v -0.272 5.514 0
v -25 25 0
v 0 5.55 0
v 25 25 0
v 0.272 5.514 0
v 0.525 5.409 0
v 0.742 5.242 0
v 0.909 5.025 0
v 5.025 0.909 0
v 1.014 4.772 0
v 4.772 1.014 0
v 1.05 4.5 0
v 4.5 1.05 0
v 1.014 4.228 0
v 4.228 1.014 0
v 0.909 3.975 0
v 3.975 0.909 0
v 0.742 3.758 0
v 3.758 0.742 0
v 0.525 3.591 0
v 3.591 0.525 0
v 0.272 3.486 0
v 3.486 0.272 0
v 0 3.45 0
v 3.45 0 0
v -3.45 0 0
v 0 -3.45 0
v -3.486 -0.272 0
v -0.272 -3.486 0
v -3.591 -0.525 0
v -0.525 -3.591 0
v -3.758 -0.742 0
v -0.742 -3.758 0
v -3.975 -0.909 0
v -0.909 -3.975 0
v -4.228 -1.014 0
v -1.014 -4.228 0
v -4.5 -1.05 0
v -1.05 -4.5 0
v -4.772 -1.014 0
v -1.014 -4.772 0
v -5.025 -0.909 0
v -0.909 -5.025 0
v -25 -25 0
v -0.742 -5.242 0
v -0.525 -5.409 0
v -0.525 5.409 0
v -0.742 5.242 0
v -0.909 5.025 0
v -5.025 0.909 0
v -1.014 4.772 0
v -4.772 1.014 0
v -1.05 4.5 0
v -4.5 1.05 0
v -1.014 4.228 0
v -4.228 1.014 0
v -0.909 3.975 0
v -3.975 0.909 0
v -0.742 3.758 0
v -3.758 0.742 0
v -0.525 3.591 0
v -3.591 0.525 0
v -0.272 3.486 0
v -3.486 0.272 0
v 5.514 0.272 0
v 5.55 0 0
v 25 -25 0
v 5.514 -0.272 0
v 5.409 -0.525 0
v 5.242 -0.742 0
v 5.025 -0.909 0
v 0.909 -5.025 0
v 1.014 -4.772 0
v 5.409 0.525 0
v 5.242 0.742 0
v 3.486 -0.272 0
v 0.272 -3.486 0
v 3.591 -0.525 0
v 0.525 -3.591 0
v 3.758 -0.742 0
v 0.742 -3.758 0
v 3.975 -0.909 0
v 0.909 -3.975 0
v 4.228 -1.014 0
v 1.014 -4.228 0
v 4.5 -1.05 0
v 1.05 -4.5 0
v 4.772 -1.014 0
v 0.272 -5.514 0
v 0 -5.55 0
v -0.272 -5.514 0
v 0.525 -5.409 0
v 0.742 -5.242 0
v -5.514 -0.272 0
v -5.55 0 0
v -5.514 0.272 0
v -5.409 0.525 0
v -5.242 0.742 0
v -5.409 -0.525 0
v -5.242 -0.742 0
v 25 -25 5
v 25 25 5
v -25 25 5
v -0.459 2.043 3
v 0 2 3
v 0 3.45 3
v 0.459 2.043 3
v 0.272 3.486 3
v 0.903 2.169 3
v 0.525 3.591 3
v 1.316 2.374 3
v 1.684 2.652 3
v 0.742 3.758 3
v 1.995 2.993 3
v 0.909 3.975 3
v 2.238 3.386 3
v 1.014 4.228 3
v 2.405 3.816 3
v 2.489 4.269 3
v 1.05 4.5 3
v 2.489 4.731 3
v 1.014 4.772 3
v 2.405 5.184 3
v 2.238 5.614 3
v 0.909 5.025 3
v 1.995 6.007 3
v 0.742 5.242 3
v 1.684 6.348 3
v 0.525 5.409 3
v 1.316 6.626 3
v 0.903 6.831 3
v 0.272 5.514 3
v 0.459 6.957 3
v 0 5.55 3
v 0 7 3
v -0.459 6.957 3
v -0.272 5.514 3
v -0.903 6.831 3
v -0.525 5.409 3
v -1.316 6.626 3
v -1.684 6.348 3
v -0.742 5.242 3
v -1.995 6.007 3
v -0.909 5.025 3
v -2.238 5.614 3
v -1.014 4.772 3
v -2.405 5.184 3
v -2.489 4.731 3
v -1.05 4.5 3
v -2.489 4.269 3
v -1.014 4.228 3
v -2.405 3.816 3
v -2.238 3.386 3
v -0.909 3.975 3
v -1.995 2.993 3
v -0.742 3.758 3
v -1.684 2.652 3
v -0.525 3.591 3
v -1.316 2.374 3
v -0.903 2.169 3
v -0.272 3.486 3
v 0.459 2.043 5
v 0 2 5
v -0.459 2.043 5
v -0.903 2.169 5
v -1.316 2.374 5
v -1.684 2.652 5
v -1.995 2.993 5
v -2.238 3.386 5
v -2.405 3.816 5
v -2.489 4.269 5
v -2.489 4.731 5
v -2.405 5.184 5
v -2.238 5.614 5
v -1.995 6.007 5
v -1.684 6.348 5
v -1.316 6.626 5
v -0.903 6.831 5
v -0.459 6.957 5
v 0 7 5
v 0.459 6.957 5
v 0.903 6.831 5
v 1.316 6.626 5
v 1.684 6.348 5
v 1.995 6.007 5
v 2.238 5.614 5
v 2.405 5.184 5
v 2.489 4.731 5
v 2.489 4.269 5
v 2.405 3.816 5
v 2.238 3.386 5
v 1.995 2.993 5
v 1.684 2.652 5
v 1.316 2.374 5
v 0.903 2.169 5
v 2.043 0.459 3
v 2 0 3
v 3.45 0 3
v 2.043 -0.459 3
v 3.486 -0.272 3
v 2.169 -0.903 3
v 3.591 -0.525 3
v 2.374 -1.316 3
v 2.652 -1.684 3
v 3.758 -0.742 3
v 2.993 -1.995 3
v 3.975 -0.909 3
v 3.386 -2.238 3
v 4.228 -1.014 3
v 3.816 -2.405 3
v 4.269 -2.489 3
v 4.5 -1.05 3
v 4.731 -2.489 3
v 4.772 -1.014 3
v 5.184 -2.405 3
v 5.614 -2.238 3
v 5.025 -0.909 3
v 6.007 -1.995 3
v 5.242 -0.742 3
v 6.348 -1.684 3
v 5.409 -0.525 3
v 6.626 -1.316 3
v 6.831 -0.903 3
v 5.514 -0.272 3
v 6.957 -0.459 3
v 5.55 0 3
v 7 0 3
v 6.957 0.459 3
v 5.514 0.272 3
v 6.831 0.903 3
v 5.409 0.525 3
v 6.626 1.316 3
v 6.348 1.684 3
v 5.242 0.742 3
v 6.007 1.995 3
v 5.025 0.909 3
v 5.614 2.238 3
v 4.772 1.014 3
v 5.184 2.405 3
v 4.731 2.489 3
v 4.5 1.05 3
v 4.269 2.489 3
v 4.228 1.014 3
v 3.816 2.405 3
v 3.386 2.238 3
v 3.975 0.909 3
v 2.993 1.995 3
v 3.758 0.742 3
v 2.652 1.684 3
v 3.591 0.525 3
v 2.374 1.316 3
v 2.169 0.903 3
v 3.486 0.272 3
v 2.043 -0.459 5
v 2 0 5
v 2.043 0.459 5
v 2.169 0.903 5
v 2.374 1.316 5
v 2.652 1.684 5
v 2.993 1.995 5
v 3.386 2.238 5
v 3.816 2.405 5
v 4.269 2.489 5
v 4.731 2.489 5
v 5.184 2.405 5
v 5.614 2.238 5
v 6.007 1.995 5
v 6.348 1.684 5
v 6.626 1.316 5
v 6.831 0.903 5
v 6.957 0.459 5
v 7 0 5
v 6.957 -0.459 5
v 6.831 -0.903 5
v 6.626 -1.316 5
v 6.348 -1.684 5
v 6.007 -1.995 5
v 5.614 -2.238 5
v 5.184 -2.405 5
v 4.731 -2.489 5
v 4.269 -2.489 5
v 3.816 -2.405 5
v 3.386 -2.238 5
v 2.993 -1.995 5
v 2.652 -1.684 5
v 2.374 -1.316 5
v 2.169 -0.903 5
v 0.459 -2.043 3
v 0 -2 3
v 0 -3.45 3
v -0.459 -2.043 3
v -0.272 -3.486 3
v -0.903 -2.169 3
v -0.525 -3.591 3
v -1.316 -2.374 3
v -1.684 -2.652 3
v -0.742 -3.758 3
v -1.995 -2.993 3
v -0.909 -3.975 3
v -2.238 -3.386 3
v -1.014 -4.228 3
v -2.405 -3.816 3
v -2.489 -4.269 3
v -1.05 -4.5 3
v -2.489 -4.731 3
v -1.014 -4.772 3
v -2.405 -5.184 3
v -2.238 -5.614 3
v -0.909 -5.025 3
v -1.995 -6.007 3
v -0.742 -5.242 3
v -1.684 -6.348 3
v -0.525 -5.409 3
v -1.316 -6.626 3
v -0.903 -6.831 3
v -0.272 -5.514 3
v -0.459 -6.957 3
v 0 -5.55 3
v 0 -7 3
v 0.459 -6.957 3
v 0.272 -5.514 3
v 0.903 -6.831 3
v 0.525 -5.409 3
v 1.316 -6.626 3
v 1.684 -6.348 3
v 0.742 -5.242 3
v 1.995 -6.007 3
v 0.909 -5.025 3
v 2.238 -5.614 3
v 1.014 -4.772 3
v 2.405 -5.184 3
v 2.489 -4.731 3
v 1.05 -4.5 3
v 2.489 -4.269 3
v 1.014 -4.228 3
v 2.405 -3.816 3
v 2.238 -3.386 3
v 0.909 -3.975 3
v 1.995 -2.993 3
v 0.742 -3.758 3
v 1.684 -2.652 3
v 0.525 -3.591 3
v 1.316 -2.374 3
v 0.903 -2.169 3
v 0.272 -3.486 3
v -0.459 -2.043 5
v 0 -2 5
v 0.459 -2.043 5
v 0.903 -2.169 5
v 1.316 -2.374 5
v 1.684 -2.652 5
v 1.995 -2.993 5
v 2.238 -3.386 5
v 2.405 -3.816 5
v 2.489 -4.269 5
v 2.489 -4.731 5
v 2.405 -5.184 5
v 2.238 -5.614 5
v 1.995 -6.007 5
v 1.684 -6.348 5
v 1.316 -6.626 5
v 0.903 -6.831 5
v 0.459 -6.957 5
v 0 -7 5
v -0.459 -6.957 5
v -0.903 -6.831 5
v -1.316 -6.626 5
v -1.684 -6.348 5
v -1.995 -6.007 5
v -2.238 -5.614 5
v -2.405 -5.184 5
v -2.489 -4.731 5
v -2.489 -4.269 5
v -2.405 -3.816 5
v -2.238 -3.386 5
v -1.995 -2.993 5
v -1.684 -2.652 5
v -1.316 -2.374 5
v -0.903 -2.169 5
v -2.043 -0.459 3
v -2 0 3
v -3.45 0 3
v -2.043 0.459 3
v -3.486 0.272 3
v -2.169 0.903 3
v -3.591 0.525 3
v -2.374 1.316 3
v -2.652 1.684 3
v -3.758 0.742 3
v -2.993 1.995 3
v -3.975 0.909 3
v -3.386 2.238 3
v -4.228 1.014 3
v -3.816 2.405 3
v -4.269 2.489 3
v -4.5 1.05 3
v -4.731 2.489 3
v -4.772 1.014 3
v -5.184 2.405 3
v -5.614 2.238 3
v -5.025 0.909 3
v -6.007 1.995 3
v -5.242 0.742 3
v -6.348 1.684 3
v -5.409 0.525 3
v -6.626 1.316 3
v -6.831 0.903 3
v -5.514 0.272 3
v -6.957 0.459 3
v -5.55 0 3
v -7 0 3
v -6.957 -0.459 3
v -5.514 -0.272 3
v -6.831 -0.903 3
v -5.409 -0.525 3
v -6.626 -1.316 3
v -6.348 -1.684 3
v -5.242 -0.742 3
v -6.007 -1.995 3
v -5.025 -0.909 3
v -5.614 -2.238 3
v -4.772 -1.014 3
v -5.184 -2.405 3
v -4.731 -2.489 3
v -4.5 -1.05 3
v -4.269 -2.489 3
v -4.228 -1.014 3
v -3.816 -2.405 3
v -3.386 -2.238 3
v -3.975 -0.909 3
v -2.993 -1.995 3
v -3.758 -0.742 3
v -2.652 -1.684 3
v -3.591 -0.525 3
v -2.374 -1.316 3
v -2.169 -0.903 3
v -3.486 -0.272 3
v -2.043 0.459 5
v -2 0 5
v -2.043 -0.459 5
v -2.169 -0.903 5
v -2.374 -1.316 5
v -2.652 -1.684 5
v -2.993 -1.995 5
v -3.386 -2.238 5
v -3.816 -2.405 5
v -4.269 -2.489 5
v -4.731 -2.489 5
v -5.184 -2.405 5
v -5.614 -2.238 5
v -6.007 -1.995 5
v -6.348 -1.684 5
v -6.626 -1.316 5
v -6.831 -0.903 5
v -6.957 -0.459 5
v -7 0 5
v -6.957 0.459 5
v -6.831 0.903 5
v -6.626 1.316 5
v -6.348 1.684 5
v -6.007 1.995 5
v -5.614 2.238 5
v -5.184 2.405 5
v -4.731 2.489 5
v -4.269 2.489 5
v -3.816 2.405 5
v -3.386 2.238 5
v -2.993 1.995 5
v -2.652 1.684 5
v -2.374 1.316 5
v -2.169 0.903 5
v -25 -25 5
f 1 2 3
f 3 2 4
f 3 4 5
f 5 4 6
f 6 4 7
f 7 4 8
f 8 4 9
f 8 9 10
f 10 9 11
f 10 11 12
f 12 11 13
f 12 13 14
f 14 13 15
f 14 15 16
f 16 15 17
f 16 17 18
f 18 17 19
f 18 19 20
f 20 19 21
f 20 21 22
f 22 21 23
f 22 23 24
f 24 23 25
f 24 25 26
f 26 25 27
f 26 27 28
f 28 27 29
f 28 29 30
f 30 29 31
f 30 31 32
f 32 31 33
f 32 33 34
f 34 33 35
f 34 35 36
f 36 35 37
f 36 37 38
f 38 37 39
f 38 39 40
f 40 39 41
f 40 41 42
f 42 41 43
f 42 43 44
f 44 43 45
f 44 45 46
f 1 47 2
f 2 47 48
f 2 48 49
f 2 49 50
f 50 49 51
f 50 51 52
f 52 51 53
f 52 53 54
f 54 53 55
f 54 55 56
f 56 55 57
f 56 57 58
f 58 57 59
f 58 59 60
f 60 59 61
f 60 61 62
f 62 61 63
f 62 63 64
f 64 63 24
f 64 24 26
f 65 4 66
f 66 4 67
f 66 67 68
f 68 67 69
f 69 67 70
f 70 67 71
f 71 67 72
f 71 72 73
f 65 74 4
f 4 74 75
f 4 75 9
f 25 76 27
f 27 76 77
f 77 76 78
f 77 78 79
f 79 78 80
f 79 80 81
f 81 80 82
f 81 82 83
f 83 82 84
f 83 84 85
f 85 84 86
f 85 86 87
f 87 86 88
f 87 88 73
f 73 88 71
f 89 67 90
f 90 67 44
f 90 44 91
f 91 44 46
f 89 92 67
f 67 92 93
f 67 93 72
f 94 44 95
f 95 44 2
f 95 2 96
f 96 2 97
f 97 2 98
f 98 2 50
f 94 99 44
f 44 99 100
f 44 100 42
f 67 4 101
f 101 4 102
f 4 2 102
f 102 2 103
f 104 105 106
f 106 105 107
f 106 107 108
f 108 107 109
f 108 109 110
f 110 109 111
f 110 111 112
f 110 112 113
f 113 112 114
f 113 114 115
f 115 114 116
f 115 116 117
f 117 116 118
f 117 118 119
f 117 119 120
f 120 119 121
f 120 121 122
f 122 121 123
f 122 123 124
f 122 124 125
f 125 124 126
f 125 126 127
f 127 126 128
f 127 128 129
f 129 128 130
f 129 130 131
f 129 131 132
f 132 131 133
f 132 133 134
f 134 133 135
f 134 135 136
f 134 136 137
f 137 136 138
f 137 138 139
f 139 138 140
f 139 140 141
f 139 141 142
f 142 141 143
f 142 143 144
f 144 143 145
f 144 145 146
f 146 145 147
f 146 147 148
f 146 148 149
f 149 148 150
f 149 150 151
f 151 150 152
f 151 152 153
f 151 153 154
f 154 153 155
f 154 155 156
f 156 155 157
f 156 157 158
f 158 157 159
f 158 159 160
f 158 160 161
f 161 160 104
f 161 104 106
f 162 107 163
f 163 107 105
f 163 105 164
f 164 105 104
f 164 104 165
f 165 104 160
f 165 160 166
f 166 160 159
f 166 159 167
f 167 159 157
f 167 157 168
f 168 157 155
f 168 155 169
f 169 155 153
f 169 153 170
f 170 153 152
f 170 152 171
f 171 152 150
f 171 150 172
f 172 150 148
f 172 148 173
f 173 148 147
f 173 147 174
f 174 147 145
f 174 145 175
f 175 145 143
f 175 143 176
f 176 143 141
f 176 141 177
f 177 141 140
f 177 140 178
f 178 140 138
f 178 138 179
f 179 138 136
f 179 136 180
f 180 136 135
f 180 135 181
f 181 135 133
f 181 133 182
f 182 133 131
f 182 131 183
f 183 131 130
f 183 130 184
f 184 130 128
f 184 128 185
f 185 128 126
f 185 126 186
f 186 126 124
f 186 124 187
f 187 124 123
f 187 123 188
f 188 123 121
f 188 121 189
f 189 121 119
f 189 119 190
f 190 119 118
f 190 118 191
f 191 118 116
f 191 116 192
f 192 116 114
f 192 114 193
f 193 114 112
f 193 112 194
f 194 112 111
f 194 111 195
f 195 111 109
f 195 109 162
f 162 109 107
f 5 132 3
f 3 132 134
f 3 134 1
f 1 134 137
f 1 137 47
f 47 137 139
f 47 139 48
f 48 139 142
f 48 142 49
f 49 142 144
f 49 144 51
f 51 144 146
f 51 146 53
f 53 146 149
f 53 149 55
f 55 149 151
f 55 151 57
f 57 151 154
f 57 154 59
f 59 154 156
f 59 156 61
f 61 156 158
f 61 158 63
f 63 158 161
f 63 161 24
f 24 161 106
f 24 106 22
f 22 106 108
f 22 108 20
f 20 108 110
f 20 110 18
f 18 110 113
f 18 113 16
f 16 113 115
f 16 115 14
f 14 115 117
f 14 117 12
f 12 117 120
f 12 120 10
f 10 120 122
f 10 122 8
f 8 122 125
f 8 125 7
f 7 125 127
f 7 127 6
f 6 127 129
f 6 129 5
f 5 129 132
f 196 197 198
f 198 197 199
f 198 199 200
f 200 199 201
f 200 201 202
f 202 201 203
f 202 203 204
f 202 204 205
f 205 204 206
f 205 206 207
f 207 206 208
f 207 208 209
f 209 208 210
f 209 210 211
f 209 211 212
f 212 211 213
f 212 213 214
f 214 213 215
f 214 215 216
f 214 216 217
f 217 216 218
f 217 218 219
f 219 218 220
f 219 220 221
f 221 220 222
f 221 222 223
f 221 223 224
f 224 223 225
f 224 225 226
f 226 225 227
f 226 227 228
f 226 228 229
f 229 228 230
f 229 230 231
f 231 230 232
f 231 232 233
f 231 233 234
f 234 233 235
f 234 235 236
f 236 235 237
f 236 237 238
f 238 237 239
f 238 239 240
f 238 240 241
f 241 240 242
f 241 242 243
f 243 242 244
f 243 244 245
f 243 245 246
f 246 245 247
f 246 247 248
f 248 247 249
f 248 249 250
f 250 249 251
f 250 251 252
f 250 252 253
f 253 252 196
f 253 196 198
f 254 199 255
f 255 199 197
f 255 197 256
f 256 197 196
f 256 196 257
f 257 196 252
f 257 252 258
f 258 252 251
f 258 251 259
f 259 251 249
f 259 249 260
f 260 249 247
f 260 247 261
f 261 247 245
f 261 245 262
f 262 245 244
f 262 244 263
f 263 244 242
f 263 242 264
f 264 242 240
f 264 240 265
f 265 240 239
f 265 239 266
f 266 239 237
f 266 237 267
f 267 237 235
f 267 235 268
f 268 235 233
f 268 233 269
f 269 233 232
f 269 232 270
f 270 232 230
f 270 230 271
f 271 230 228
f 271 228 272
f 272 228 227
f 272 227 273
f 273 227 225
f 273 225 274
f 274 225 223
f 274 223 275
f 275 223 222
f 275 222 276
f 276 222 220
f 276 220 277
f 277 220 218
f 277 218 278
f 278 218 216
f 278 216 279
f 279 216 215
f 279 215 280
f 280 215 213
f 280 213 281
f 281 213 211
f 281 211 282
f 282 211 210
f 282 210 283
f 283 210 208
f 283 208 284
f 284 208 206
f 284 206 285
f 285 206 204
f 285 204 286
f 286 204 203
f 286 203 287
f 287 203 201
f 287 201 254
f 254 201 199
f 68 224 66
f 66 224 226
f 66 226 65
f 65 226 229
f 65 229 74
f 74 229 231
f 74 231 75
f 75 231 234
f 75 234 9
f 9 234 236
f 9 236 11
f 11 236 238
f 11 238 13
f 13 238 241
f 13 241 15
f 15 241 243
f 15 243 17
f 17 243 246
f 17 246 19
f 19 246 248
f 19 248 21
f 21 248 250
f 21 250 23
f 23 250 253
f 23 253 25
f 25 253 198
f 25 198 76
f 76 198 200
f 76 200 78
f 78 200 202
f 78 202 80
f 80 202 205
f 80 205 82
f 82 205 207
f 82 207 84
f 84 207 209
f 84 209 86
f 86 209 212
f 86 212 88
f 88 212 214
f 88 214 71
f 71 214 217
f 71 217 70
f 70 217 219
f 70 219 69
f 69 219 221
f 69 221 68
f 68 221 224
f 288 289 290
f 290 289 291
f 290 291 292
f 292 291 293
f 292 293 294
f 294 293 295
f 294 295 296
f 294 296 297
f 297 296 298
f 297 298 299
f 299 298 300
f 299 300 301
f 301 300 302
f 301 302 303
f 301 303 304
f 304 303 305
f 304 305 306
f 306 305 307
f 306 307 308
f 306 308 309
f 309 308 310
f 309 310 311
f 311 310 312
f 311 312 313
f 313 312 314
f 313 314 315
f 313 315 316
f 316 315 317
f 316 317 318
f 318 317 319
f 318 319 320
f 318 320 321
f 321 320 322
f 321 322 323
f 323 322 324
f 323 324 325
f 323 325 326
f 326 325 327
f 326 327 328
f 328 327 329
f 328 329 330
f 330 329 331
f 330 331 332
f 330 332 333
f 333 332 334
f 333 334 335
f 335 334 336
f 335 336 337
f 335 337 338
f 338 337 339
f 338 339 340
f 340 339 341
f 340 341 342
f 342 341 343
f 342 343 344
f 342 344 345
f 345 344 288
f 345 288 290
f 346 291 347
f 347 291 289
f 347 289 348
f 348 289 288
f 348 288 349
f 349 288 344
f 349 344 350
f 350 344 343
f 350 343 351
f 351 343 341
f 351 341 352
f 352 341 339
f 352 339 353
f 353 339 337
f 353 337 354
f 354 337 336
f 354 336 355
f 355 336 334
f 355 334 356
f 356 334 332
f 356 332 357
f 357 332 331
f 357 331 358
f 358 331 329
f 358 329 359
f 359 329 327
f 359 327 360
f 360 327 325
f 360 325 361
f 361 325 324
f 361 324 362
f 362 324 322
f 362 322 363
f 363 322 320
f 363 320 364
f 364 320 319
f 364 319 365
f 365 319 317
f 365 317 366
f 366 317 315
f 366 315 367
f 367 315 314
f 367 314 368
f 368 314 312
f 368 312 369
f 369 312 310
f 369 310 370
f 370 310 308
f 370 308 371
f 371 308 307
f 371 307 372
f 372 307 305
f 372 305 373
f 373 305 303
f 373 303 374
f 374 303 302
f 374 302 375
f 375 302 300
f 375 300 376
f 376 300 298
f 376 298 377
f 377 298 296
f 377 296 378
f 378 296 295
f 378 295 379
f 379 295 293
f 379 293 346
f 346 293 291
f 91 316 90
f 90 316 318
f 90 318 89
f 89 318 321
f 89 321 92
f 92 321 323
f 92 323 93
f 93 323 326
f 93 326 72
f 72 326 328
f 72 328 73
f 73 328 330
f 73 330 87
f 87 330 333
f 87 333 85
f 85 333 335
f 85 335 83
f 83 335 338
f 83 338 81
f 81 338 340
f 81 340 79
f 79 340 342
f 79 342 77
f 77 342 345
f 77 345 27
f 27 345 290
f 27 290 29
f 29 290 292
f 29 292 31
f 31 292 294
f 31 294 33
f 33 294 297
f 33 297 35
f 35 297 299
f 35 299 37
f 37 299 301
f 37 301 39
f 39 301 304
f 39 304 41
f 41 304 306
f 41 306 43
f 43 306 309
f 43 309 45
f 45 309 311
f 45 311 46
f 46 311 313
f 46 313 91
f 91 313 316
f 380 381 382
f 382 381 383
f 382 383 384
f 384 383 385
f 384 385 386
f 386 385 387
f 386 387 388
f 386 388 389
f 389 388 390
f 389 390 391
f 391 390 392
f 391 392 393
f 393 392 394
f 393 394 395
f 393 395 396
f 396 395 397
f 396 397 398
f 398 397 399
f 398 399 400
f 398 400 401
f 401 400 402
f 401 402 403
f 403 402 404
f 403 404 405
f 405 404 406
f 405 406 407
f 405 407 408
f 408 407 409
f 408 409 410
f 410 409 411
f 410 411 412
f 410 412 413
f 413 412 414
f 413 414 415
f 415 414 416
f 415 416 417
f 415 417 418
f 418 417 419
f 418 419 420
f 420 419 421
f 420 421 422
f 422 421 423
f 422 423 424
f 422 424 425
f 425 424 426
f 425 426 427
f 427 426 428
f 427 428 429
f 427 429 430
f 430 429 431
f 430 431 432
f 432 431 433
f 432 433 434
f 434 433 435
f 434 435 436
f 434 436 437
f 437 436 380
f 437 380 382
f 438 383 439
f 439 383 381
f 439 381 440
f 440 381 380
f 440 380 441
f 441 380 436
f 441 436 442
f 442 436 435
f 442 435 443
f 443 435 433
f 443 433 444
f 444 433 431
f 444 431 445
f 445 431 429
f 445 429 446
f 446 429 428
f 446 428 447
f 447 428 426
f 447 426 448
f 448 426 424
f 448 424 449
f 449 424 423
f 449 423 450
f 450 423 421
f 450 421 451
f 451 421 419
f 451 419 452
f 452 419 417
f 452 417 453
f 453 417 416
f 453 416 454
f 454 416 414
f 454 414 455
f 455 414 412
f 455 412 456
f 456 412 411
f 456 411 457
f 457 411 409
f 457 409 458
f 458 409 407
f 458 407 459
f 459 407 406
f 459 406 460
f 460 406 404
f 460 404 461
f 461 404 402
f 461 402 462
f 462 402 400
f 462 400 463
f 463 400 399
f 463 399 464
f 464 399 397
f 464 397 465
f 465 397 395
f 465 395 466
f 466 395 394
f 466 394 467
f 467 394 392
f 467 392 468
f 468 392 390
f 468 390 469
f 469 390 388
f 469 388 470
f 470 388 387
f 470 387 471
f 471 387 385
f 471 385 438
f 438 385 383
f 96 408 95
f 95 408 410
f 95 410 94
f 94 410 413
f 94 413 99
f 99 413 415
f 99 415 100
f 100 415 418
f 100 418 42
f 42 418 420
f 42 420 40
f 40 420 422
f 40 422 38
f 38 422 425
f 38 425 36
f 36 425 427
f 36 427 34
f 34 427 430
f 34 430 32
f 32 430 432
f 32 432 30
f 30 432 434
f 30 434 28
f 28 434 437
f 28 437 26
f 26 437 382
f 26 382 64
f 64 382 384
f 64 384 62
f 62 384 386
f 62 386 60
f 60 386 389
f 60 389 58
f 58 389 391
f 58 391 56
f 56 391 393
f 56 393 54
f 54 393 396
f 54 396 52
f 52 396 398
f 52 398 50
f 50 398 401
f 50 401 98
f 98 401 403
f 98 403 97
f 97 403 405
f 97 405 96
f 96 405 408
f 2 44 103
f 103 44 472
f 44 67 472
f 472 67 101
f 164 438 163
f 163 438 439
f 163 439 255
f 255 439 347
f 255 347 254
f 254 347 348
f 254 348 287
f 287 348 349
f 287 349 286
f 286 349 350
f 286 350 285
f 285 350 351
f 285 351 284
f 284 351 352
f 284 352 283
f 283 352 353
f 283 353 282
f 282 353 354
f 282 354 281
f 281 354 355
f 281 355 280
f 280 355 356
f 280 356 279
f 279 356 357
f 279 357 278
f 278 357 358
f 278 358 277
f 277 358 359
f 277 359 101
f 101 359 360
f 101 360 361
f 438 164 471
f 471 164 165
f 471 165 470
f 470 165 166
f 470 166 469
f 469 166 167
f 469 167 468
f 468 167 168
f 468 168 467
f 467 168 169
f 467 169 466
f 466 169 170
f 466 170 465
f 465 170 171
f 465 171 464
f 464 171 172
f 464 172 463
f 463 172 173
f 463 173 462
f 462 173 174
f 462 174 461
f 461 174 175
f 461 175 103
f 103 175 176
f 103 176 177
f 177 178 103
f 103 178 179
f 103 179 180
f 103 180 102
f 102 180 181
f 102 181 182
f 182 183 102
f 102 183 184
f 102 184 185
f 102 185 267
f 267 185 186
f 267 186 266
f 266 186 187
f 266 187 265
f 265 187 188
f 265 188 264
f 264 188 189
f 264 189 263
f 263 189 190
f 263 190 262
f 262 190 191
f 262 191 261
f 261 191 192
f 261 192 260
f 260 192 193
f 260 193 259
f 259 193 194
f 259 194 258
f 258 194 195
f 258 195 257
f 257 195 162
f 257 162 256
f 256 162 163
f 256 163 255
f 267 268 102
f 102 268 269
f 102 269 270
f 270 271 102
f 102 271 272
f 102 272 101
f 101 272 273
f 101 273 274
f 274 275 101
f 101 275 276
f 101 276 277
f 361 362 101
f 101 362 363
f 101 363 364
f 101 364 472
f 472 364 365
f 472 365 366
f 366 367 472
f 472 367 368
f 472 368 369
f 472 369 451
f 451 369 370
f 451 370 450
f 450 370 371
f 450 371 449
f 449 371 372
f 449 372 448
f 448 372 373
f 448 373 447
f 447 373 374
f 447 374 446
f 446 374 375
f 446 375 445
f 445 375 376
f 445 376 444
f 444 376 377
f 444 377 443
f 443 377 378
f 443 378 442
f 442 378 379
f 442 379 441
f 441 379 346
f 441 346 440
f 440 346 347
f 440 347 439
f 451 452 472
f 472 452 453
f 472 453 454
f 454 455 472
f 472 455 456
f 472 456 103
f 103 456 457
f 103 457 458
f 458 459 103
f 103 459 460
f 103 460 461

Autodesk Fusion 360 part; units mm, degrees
sketch "Sketch1" plane through (0, 0, 0) normal (0, 0, 1) x (1, 0, 0)
  line L0 (-25, 25) -> (25, 25)
  line L1 (25, 25) -> (25, -25)
  line L2 (25, -25) -> (-25, -25)
  line L3 (-25, -25) -> (-25, 25)
extrude "Extrude1" add sketch "Sketch1" along normal blind 5
sketch "Sketch2" plane through (0, 0, 5) normal (0, 0, 1) x (-1, 0, 0)
  line L0 (25, 25) -> (-25, 25)
  line L1 (-25, 25) -> (-25, -25)
  line L2 (-25, -25) -> (25, -25)
  line L3 (25, -25) -> (25, 25)
  circle A0 centre (0, 0) radius 4.5
  line L4 (0.0733, -4.4994) -> (0.0733, 4.4994)
  line L5 (4.5, 0) -> (-4.5, 0)
  dimension "d3" = 9
hole "Hole1" at (-4.5, 0, 5) direction (0, 0, -1) diameter 2.1 depth 11 tip angle 118 counterbore diameter 5 counterbore depth 2
pattern_circular "C-Pattern1" count 4 over 360 about axis through (0, 0, 1.75) along (0, 0, 1) of "Hole1"
extrude "Extrude2" add 1 faces at (-18.5157, 0.0262, 0) along direction (0, 0, -1) blind 2
extrude "Extrude3" cut 1 faces at (-18.5157, 0.0262, -2) along direction (0, 0, 1) blind 2
